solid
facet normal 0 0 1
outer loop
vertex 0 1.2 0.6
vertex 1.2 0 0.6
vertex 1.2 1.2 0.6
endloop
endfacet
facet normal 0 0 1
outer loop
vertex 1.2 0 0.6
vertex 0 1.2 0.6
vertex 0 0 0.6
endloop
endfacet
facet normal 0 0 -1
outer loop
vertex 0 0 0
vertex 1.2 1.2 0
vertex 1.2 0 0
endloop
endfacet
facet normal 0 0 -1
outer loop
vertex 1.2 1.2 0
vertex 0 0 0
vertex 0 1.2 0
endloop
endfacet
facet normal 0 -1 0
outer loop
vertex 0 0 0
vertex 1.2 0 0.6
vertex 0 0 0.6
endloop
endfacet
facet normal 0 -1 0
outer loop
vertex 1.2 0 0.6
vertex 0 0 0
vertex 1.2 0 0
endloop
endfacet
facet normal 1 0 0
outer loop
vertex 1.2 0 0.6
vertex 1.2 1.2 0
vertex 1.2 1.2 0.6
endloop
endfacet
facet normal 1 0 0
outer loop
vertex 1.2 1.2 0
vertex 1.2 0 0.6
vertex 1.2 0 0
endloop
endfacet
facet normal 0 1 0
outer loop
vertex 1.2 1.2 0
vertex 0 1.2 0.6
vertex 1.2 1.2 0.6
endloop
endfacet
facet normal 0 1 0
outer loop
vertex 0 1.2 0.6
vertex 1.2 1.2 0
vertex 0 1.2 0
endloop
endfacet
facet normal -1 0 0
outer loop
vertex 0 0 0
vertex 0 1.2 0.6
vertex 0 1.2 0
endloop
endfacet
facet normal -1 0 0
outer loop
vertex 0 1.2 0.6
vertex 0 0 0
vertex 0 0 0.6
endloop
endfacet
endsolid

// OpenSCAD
/* Warning, this is a very basic generator with a lot of approximation 
input data : [UDFN, HHA, 1.2x1.2x0.6mm, 6, , A, C04-01151A]
generated by com.zoubworld.electronics.cad.model3d.Basic
Date : Sun Feb 15 10:50:49 CET 2026
*/

//body
color("black")
translate([0,0,0])
cube([1.2,1.2,0.6], center=false);
